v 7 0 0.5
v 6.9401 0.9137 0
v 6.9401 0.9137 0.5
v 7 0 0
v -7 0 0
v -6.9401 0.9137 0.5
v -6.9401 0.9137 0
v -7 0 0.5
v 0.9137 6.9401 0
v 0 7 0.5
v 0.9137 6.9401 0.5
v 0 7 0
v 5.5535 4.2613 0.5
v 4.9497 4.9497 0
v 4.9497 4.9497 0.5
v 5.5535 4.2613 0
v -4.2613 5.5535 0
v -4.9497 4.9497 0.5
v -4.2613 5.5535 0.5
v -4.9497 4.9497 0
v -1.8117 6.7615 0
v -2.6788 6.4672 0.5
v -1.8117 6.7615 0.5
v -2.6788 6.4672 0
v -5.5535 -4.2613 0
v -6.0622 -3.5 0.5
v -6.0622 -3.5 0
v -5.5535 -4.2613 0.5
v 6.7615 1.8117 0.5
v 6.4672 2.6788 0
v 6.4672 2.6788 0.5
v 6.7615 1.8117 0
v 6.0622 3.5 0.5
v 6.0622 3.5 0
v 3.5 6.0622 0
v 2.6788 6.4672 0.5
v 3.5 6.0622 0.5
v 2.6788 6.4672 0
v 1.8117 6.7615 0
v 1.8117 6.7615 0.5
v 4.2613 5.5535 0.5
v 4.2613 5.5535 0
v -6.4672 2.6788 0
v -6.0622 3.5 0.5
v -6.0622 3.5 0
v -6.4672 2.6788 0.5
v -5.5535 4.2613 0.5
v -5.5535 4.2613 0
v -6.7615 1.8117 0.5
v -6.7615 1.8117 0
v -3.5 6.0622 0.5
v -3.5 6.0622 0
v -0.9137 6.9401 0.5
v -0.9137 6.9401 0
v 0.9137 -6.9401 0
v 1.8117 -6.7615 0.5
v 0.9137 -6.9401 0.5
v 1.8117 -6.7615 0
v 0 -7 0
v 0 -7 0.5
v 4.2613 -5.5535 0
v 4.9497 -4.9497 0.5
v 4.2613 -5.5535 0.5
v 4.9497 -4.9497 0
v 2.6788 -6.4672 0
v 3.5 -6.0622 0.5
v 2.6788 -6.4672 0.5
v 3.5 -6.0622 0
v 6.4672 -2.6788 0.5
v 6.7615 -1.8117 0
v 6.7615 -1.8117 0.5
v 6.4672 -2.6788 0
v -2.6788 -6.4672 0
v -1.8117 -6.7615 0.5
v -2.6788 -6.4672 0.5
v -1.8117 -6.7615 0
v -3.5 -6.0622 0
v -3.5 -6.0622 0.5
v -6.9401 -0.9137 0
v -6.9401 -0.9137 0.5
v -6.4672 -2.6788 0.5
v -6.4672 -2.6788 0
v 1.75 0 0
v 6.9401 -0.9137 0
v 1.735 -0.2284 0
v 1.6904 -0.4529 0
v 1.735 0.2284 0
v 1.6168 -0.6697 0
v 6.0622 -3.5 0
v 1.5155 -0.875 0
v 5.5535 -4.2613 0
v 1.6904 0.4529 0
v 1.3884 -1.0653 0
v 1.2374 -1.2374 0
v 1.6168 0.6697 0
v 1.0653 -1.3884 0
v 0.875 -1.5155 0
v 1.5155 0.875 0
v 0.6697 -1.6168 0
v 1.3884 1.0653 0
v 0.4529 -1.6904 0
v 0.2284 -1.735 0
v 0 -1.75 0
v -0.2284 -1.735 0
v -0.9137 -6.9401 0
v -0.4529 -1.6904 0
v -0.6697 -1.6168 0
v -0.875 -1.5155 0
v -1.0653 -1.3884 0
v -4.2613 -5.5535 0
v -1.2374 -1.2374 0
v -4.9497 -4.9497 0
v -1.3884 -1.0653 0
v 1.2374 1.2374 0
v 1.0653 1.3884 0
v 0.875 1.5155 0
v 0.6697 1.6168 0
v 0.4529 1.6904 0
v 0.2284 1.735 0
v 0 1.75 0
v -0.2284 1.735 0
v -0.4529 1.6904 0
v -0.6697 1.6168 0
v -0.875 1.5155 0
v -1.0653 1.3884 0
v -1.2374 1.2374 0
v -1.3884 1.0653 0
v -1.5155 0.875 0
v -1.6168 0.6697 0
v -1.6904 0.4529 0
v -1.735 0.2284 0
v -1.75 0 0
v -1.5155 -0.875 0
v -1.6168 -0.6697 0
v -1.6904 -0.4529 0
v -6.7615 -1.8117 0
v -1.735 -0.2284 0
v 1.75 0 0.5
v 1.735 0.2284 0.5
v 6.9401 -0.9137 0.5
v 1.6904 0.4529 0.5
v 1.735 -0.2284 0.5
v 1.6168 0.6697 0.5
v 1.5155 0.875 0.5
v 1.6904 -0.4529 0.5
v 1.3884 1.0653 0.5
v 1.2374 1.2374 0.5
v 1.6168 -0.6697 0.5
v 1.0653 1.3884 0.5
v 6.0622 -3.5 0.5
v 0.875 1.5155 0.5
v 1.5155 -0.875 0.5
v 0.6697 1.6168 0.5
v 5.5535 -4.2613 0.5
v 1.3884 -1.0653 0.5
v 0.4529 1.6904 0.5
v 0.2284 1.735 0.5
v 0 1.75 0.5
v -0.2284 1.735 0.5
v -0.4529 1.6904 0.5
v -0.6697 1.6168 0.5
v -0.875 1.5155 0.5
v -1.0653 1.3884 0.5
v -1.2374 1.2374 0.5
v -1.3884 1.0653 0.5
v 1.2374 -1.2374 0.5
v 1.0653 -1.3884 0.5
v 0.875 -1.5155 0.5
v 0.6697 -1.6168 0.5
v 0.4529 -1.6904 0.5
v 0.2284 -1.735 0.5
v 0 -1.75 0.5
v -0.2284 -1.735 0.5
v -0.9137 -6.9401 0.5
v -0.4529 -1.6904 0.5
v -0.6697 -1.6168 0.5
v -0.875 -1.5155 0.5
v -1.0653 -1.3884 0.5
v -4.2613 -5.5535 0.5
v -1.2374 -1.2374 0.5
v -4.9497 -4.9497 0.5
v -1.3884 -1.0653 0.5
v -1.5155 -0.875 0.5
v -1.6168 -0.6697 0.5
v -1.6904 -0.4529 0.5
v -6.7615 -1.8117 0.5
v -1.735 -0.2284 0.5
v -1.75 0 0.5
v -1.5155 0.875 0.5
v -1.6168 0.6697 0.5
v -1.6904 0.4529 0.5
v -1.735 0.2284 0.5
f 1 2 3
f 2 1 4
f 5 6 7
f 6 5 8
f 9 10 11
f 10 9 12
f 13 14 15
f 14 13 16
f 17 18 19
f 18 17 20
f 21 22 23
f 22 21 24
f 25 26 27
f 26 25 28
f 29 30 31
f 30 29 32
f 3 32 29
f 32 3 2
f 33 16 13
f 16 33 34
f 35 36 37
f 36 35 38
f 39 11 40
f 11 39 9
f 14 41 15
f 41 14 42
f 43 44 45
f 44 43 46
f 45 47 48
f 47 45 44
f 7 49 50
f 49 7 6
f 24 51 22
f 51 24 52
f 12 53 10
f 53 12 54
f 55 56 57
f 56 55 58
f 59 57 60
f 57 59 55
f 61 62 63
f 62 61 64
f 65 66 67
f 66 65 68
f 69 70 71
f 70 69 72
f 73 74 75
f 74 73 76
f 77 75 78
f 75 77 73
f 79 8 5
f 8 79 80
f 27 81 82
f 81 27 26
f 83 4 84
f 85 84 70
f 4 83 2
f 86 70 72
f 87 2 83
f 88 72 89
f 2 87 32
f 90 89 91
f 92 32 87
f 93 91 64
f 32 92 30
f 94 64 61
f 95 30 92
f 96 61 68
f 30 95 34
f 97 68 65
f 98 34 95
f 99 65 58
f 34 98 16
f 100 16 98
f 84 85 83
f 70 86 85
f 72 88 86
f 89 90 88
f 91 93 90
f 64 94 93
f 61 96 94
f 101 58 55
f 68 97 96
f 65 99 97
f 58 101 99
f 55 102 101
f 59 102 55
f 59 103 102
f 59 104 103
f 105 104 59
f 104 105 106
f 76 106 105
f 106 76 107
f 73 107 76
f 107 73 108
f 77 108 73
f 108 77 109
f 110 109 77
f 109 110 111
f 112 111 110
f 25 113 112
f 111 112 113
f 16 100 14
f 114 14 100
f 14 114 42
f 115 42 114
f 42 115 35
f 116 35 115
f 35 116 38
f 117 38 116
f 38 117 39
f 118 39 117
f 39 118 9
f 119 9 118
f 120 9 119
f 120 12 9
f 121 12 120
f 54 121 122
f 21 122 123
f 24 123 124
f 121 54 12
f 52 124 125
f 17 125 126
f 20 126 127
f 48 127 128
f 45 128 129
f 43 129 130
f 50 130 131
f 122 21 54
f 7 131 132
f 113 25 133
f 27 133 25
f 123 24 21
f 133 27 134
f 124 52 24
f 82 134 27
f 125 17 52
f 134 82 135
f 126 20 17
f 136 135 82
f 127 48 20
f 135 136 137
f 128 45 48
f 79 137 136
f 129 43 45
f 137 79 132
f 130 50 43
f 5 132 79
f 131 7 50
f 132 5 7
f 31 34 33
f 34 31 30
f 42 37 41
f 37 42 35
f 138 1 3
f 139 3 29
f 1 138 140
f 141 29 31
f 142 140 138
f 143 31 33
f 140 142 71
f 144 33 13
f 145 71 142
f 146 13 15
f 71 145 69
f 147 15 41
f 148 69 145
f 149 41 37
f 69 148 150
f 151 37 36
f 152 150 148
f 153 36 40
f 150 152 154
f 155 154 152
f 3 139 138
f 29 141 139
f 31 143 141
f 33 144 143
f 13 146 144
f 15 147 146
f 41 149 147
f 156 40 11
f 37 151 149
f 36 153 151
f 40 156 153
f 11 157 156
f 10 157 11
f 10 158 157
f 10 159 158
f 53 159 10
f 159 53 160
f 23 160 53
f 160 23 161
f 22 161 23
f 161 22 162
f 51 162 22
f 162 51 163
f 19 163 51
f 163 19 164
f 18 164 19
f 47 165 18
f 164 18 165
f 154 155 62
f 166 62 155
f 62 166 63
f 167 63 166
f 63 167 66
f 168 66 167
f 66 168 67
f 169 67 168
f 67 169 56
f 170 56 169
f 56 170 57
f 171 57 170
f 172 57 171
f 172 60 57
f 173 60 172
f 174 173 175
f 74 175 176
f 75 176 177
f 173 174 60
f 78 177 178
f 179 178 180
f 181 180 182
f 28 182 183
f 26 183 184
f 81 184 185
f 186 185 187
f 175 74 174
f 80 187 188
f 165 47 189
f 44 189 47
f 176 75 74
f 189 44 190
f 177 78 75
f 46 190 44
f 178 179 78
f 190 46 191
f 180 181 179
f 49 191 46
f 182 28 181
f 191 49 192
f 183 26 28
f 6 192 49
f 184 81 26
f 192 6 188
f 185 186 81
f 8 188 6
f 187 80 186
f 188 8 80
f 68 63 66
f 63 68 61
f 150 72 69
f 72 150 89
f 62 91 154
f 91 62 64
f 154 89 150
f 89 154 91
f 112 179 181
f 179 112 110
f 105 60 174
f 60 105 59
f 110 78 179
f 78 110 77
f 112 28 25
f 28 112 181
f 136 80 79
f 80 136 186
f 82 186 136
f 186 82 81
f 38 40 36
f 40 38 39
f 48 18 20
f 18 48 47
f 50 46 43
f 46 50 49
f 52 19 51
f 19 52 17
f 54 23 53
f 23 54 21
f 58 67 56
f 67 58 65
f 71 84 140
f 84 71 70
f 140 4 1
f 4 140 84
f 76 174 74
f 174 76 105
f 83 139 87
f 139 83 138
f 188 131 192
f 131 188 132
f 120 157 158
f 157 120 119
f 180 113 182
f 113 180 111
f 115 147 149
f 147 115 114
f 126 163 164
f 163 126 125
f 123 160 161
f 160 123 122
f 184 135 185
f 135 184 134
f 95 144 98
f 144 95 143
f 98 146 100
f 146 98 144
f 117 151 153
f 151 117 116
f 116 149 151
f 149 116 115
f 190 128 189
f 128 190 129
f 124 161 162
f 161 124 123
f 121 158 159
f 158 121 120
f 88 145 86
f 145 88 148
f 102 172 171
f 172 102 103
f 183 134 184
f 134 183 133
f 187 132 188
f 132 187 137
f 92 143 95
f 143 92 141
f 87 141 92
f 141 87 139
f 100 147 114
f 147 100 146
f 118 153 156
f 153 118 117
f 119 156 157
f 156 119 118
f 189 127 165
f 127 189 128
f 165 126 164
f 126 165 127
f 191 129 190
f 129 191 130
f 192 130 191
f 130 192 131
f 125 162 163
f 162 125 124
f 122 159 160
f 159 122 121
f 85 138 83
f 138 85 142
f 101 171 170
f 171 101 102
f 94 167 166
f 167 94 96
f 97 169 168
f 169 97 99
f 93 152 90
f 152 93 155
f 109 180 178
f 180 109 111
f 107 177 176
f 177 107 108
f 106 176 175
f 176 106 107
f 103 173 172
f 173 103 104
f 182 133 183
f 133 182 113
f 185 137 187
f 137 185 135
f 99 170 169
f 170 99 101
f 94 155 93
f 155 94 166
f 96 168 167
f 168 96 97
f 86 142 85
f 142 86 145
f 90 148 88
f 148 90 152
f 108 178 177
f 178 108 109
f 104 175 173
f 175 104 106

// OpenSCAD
// file: parameters.scad
// =============================================================================
// Gen-BS — nightly 2026-10-09 (physics_scorer, honest magpylib watts)
// Pull the whole machine 2 mm inward: poles at R48 (was R50) with 26–68 mm bobbins and an 18.5 mm build. Shorter mean turn length lets each coil hold 612 turns on about 356 m of copper — ~14 m less than Gen-BO, which leaves real slack on a ~390 m spool for leads, a re-wind or a short spool — for about 1.7 % less power. Same Ø134 steel discs as Gen-BO.
// Clocking 0 deg (magnets N facing S) + D-flat keyed bore + index notch + flip-symmetric hole map.
// Windable 2-piece bobbin; turns = physics_scorer turns_fit; copper only between flanges.
// Steel back-iron: 2× Ø134 × 4.76 mm (3/16") mild-steel discs (steel_backiron_disc.dxf); magnets sit ON the steel
// (through-pockets) -> score with --back-iron.
// =============================================================================
topology            = "dual_rotor";

// --- Wire / winding (physics_scorer winding-fit) -------------------------------
wire_awg            = 26;
wire_od             = 0.45;     // insulated OD mm (bare 0.405)
fill_realistic      = 0.65;     // insulated-wire area / window (DENSE layered wind with a jig; scorer cap 0.65)
turns               = 612;       // = physics_scorer turns_fit (do NOT raise)
coil_former_type    = "bobbin";
coil_core_inset     = 18.50;     // radial copper build: hub = copper boundary inset by this
wind_build_axial    = 0.0;      // nothing proud of the flanges
wind_build_radial   = 0.0;

// --- Bobbin (base + lid) ---------------------------------------------------------
coil_id_r           = 26.00;    // copper boundary sector
coil_od_r           = 68.00;
span_deg            = 52.72;    // = pitch - 2*asin((wall+0.85)/coil_id_r) -> >=1.2 mm stator web
former_web          = 8.10;     // copper height between flanges (TALL copper: steel keeps Bz up)
flange_t            = 0.80;     // >= 0.8 mm FDM wall rule (tall winds push on the flanges)
wall                = 0.80;     // flange lip beyond copper
former_bare_h       = former_web + 2 * flange_t;
coil_envelope_h     = former_bare_h + 2 * wind_build_axial;
tab_w               = 7.0;
tab_len             = 7.0;
tab_h               = former_bare_h / 2;
pin_d               = 1.9;      // 1.75 mm filament locating pin
coil_mount_r        = coil_od_r + 0.2 + 4.0;
lead_y              = 1.6;
lead_slot_w         = 0.9;
lead_groove_d       = 0.6;

// --- Gap -------------------------------------------------------------------------
run_clear           = 0.50;     // rotor face -> flange
gap_spacer_h        = run_clear + wind_build_axial;
m2m                 = coil_envelope_h + 2 * run_clear;   // rotor face to rotor face (= gap_sleeve length)

// --- Stator ----------------------------------------------------------------------
coil_stations       = 6;
bay_clear           = 0.25;
stator_thick        = former_bare_h;                        // bobbins flush both faces
stator_od           = 156.0;
shaft_clear_stator  = 14.0;     // stator is static; gap sleeve OD 12 spins inside

// --- Rotor(s) --------------------------------------------------------------------
magnet_Br           = 1.43;     // N52
magnet_d_large      = 20.0;
magnet_h_large      = 5.0;      // one O20x5 per pocket
magnet_h_small      = 5.0;      // one O5x5 per pocket
halbach_magnetisation = "diametric"; // O5x5 assist magnets MUST be DIAMETRICALLY magnetised (tangential)
rotor_b_same_axis   = true;     // same-index magnets share one axis: N faces S across the gap
large_pocket_d      = 20.3;
small_pocket_d      = 5.3;
pocket_h            = 5.00;     // THROUGH the carrier: magnet back face sits on the steel disc (FLUSH seat: carrier = magnet height, magnet face level with the rotor face)
large_n             = 8;
R_large             = 48.0;
R_small_inner       = 41.8;
R_small_mid         = 48.0;
R_small_outer       = 54.2;
small_r_list        = [R_small_inner, R_small_mid, R_small_outer];   // O5 pockets between poles
carrier_od          = 134.0;
carrier_thick       = pocket_h;
hub_h               = 12.0;     // > steel_t + insert: radial set-screw clears the steel
hub_od              = 24.0;     // slim hub so the M4 brace rods fit at R~18 inside the coil ring
hub_insert_d        = 4.0;      // M3 heat-set insert, radial, bears on the D-flat
rotor_b_offset_deg  = 0.0;      // CLOCKING: magnets directly opposite
shaft_key           = "dflat";
dflat_depth         = 0.5;      // 8 mm shaft with 0.5 mm flat (7.5 across flat)
index_notch_d       = 3.0;

// --- Steel back-iron (buyable laser-cut) -------------------------------------------
steel_t             = 4.76;      // mild steel thickness (image method ignores it; sized from steel_flux.py so the return path stays well below saturation)
steel_center_hole   = 26.0;     // slips over the rotor hub (OD 24)
steel_od            = carrier_od;   // steel disc OD = rotor carrier OD

// --- Modular MAX interface ----------------------------------------------------------
shaft_bore          = 8.35;
dflat_x             = 4.0 - dflat_depth + (shaft_bore - 8.0) / 2;
bearing_d           = 21.85;
bearing_h           = 7.2;
m3_clear            = 3.5;
bolt_r_inner        = 30.0;     // M3 steel-disc clamp bolts (inside the magnet ring)
bolt_n_inner        = 4;
bolt_inner_angles   = [0, 90, 180, 270];
bolt_r_outer        = 63.0;     // M3 steel-disc clamp bolts (outside the magnet ring)
bolt_outer_angles   = [45, 135, 225, 315];
flange_bolt_r       = 73.0;     // frame rods: OUTSIDE the rotor OD (rotors spin inside them)
flange_bolt_n       = 6;
flange_bolt_offset  = 30.00;    // between coil stations -> never cuts a lead groove/tab
brace_r             = 18.0;
brace_d             = 4.3;      // temporary M4 jack rods (assembly only)
brace_n             = 4;
brace_angles        = [45, 135, 225, 315];          // flip-symmetric

spacer_pad_od       = 14.0;
spacer_pad_id       = m3_clear;
endbell_od          = 156.0;
endbell_thick       = 8.0;
endbell_shaft_clear = 10.0;
collar_h            = 10.0;
standoff_od         = 9.0;
frame_standoff_h    = run_clear + carrier_thick + hub_h + collar_h + 2.0;
sleeve_od           = 12.0;
plate_max_mm        = 410;

$fn = 64;
// main file
// Gen-BS — assembly gap shim, h = run_clear (rotor face -> flange); copper is inside the flanges
include <parameters.scad>;
$fn = 48;
difference() {
    cylinder(d=spacer_pad_od, h=gap_spacer_h);
    translate([0, 0, -0.1]) cylinder(d=spacer_pad_id, h=gap_spacer_h + 0.2);
}
